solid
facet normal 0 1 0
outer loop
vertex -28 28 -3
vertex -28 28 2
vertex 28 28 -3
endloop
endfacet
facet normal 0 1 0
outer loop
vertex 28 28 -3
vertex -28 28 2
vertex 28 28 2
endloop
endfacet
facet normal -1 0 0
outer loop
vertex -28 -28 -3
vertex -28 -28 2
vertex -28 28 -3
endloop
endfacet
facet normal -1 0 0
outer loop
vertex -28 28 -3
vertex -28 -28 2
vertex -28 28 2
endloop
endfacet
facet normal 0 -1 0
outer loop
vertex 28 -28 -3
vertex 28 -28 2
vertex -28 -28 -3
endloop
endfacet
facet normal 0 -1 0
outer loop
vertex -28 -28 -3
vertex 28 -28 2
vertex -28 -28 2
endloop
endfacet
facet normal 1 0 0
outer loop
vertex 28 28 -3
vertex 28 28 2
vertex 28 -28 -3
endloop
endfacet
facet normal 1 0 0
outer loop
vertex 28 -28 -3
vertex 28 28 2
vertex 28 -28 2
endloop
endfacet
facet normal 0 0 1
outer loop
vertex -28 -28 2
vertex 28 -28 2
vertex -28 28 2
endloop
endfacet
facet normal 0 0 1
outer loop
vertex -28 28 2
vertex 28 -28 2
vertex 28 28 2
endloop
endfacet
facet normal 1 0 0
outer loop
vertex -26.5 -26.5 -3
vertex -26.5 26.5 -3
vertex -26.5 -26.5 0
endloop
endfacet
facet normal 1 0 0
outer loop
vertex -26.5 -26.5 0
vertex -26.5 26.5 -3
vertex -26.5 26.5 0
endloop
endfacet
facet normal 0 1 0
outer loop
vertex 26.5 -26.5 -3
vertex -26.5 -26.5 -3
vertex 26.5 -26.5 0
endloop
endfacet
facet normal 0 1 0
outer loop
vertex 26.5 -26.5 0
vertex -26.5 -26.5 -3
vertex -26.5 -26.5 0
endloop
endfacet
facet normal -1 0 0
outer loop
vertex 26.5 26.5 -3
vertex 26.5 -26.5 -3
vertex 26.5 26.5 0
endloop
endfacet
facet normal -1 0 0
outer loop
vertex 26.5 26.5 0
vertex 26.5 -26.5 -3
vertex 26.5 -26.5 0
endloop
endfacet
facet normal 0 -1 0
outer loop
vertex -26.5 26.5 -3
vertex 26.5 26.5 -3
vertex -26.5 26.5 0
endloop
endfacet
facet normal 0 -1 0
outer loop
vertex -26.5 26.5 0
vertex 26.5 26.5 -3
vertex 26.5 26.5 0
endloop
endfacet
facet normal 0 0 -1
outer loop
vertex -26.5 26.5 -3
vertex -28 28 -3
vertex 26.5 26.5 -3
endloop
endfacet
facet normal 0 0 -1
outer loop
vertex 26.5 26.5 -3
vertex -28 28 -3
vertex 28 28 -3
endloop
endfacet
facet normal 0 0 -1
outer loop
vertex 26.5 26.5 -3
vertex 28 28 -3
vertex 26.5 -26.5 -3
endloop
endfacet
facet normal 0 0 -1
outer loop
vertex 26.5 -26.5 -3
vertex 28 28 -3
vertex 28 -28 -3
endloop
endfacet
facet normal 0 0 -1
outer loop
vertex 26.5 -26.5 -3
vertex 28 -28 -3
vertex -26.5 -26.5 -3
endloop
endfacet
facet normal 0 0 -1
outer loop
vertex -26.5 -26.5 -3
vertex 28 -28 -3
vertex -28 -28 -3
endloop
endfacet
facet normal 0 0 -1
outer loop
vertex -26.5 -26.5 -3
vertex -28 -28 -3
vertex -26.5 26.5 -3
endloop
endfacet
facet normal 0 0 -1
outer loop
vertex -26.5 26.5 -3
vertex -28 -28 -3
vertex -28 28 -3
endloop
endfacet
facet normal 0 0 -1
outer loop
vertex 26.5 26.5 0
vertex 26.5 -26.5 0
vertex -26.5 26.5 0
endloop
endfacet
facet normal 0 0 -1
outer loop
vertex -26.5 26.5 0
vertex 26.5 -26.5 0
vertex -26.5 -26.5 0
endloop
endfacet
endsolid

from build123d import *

# Parameters (mm, degrees)
SKETCH1_W           = 56
SKETCH1_H           = 56
BOSS_EXTRUDE1_DEPTH = 2
SKETCH1_3_W         = 56
SKETCH1_3_H         = 56
SKETCH1_3_W_2       = 53
SKETCH1_3_H_2       = 53
BOSS_EXTRUDE2_DEPTH = 3


with BuildPart() as part:
    # Sketch1 → Boss-Extrude1 (new body)
    with BuildSketch(Plane.XY):
        Rectangle(SKETCH1_W, SKETCH1_H)
    extrude(amount=BOSS_EXTRUDE1_DEPTH)

    # Sketch1<3> → Boss-Extrude2 (add)
    with BuildSketch(Plane.XY):
        Rectangle(SKETCH1_3_W, SKETCH1_3_H)
        Rectangle(SKETCH1_3_W_2, SKETCH1_3_H_2, mode=Mode.SUBTRACT)
    extrude(amount=-BOSS_EXTRUDE2_DEPTH)


solid = part.part
